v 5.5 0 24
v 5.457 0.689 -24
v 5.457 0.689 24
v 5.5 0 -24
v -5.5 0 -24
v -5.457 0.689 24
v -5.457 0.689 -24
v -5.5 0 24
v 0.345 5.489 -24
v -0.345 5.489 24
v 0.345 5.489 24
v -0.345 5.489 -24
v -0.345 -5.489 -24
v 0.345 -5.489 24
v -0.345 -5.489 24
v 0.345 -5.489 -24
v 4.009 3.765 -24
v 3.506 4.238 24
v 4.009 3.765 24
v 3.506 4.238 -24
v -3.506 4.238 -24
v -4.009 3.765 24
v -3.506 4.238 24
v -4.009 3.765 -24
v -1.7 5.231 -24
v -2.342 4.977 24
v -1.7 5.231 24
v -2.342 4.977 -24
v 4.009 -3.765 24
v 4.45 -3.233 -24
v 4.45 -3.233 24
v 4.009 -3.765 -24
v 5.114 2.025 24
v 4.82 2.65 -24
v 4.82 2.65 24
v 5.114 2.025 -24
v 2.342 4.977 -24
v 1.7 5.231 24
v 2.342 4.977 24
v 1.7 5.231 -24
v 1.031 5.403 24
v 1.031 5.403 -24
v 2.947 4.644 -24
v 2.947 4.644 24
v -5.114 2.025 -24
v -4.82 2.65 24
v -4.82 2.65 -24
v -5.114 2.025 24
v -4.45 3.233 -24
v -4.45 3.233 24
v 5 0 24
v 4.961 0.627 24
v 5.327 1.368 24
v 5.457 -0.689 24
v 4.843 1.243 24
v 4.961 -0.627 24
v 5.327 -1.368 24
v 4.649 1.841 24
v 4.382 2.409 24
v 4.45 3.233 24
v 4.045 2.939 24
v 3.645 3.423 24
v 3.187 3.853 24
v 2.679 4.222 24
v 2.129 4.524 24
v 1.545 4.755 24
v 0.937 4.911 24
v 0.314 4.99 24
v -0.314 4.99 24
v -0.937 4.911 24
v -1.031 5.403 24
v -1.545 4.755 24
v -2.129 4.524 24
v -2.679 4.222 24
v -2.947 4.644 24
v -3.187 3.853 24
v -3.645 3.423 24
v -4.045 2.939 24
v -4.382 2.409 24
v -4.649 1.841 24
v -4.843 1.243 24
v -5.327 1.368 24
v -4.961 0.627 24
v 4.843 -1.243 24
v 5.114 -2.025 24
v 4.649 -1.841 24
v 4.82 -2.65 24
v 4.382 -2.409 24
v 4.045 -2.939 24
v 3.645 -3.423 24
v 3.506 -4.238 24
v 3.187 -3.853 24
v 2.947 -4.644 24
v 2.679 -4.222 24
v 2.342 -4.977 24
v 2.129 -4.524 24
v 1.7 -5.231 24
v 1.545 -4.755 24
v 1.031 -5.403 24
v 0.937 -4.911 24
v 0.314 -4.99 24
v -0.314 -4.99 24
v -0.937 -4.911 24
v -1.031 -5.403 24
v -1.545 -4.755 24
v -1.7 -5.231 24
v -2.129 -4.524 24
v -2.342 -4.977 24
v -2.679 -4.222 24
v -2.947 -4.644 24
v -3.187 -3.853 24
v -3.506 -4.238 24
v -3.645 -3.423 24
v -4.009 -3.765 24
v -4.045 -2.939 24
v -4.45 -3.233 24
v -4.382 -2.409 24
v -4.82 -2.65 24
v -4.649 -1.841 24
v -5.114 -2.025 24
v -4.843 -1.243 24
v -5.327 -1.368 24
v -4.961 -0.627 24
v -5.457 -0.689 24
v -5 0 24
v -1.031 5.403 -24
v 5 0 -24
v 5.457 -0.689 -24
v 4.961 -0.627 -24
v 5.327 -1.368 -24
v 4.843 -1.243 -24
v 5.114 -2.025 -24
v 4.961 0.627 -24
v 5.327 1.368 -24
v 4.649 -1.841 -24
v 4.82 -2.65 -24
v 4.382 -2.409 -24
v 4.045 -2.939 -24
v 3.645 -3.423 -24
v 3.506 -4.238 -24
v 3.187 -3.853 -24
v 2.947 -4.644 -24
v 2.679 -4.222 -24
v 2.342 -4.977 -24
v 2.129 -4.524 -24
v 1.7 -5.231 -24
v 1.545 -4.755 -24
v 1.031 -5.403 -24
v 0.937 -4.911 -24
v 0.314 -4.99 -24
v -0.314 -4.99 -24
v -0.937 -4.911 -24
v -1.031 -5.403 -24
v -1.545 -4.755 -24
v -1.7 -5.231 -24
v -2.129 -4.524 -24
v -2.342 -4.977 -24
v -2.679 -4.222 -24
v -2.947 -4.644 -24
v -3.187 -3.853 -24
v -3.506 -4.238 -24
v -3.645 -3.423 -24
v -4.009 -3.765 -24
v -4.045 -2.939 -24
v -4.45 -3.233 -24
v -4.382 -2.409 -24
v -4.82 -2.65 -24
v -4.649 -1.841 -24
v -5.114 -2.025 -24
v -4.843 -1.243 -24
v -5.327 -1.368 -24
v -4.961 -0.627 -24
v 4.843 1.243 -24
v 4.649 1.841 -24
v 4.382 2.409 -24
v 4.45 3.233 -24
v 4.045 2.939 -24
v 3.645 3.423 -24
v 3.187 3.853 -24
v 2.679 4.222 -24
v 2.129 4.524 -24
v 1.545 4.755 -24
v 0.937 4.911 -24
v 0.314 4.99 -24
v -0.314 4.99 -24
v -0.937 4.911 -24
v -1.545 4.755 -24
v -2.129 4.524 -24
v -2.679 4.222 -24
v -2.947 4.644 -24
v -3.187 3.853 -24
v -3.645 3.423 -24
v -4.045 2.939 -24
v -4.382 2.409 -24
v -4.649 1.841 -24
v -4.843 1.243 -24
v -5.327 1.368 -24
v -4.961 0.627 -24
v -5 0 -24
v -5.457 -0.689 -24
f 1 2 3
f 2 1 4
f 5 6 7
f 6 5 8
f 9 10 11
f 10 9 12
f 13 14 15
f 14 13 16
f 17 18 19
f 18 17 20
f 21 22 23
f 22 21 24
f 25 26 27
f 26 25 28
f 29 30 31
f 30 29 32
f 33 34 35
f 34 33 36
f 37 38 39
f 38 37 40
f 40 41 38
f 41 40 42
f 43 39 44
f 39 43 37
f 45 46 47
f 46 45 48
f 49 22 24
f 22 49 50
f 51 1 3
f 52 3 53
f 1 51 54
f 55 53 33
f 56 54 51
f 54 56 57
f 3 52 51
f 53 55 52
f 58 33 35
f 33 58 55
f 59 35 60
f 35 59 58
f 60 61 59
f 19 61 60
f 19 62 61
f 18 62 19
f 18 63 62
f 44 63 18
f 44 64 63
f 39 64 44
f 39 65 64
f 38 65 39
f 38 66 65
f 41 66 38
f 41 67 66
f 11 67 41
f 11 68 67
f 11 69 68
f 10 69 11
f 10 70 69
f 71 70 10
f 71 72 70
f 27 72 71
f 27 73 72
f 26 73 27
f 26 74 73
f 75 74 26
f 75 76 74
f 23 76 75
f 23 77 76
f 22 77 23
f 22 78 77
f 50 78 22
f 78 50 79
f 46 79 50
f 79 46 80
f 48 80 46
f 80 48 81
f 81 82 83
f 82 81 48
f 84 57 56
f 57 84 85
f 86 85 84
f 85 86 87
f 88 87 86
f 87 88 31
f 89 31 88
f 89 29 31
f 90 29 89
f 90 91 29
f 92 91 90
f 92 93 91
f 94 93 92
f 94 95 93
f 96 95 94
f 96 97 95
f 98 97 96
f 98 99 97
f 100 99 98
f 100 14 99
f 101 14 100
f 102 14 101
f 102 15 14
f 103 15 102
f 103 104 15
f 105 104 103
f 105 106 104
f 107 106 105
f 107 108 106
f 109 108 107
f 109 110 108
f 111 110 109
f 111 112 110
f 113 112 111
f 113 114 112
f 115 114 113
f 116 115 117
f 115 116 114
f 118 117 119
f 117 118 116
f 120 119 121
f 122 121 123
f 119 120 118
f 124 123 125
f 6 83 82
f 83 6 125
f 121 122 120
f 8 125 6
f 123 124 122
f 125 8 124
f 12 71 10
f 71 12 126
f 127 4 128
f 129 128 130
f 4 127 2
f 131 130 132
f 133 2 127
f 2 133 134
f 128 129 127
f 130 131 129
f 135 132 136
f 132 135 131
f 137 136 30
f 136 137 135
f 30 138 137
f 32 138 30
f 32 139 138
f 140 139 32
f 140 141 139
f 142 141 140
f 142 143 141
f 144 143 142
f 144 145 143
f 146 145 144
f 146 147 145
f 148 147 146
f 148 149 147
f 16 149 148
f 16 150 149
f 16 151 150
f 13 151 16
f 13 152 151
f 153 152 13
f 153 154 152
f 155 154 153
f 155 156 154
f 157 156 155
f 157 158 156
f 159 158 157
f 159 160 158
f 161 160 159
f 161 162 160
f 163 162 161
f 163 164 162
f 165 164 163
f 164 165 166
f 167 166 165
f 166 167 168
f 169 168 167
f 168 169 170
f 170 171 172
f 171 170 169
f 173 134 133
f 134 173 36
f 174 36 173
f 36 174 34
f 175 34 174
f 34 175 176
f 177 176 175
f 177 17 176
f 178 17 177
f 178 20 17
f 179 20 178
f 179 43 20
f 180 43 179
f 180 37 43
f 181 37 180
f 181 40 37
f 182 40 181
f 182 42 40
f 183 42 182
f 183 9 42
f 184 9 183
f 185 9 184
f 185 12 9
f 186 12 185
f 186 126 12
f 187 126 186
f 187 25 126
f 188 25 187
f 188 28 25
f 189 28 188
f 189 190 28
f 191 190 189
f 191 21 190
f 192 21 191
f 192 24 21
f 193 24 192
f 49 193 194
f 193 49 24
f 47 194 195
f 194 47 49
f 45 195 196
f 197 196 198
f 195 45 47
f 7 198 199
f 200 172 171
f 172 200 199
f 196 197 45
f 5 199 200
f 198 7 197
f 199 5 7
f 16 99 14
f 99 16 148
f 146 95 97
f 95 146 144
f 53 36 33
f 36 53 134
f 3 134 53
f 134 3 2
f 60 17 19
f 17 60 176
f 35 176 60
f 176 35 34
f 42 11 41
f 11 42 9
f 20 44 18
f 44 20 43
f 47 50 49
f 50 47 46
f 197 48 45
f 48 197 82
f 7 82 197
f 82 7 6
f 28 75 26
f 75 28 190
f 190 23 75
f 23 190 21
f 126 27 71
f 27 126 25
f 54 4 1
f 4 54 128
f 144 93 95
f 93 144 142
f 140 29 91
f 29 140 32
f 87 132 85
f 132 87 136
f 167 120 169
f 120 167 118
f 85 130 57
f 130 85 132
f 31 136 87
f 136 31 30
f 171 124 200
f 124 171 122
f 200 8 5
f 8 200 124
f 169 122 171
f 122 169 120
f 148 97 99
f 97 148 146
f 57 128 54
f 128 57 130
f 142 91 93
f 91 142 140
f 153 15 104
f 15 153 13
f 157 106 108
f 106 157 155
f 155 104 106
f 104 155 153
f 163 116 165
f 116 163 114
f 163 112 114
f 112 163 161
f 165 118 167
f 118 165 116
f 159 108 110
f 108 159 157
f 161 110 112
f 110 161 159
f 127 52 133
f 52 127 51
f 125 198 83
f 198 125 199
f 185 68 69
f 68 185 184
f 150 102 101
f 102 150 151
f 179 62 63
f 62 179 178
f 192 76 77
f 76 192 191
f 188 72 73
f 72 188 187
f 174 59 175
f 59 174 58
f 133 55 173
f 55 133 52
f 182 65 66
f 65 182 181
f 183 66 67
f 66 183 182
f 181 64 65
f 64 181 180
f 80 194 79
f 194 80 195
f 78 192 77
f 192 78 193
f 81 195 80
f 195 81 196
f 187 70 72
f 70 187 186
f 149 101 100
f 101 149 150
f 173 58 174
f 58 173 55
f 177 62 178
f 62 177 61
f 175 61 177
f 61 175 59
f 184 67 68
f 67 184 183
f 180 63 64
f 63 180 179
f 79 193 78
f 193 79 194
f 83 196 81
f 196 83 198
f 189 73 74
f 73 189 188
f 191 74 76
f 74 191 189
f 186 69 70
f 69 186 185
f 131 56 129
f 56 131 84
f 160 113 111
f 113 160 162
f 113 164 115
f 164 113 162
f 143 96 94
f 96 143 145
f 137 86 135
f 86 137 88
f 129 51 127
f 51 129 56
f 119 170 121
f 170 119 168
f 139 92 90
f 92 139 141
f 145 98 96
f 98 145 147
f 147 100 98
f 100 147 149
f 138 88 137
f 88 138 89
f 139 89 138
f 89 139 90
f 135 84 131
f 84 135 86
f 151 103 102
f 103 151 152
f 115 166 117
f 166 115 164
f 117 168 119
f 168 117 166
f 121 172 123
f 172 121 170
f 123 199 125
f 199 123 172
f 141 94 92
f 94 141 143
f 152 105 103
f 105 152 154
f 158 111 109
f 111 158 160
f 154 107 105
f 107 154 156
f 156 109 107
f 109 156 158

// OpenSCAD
$fn = 50;


difference() {
	union() {
		translate(v = [0, 0, -24.0000000000]) {
			cylinder(h = 48, r = 5.5000000000);
		}
	}
	union() {
		translate(v = [0, 0, -100.0000000000]) {
			cylinder(h = 200, r = 5);
		}
	}
}
